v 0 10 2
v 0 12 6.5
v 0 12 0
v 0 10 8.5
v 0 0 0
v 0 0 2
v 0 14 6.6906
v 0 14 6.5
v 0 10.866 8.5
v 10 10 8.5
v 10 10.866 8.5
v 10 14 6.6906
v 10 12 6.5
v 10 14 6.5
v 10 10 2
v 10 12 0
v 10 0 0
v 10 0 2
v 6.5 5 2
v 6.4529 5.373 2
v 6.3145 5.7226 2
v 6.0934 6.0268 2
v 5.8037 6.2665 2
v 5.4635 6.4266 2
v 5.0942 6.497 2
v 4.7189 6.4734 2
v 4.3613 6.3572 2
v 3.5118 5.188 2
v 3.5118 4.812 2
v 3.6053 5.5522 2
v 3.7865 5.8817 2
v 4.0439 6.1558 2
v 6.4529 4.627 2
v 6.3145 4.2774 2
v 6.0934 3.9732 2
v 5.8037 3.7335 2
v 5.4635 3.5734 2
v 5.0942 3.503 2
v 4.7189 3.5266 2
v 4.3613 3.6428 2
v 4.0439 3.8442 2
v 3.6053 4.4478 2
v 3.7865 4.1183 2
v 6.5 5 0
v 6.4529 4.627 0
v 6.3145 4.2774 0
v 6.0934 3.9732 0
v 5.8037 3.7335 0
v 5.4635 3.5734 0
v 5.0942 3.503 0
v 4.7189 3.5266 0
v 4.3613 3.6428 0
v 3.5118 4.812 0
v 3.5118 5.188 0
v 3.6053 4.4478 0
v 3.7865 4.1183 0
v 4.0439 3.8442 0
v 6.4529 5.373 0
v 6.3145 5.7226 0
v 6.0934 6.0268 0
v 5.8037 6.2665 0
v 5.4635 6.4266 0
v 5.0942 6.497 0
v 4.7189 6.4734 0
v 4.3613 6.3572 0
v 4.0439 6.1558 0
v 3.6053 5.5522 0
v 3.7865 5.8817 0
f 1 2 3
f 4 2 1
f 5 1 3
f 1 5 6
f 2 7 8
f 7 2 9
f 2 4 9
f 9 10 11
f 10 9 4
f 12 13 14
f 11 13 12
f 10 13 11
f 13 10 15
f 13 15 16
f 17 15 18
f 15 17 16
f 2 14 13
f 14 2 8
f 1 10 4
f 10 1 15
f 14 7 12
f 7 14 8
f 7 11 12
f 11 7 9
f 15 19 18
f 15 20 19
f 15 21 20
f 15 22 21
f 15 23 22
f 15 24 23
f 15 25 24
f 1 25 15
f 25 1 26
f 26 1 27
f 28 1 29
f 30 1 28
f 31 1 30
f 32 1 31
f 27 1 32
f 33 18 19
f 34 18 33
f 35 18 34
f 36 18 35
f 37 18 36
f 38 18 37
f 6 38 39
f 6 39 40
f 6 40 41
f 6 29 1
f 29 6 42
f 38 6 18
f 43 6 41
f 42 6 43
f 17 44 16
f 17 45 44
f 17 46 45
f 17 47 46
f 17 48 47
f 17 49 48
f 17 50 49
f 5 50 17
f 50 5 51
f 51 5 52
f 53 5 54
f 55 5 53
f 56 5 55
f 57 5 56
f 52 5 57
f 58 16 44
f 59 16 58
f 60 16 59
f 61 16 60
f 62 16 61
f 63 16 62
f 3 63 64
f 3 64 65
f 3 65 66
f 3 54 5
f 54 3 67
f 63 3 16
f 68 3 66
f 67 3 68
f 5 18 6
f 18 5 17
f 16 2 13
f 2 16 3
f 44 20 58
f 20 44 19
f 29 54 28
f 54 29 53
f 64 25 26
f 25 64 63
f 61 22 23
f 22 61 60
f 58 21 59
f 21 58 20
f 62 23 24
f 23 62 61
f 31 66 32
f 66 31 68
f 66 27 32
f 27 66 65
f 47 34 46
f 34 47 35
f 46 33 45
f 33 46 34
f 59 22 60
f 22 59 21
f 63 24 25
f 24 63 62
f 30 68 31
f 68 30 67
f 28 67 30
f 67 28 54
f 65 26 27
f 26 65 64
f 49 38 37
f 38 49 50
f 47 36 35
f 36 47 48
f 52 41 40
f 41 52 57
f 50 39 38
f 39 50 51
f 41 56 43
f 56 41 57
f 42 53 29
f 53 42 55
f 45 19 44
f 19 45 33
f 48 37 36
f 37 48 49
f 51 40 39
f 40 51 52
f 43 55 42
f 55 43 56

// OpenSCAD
alt = 6.5;
larg=10;
comp=10;




difference() {
   union(){
      cube([larg,comp,2]);
      translate([0,comp,0]) cube([larg,2,alt]);
      difference() {
           translate([0,comp,alt]) cube([larg,4,2]);
           translate([-1,comp,alt+2+0.5]) rotate([-30,0,0]) cube([larg+2,6,2]);

      }
   }
translate([larg/2,comp/2,-1]) cylinder(d=3,h=10,$fn=25);
}
